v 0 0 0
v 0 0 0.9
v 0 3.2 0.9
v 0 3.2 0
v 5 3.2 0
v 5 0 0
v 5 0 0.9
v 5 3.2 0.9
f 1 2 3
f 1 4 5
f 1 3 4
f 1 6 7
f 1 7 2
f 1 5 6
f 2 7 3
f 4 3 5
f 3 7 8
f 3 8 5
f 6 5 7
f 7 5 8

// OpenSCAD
/* Warning, this is a very basic generator with a lot of approximation 
input data : [VELGA, 2LW, 5.0x3.2x0.9mm, 4, , A, C04-00546A]
generated by com.zoubworld.electronics.cad.model3d.Basic
Date : Sun Feb 15 10:50:48 CET 2026
*/

//body
color("black")
translate([0,0,0])
cube([5.0,3.2,0.9], center=false);
